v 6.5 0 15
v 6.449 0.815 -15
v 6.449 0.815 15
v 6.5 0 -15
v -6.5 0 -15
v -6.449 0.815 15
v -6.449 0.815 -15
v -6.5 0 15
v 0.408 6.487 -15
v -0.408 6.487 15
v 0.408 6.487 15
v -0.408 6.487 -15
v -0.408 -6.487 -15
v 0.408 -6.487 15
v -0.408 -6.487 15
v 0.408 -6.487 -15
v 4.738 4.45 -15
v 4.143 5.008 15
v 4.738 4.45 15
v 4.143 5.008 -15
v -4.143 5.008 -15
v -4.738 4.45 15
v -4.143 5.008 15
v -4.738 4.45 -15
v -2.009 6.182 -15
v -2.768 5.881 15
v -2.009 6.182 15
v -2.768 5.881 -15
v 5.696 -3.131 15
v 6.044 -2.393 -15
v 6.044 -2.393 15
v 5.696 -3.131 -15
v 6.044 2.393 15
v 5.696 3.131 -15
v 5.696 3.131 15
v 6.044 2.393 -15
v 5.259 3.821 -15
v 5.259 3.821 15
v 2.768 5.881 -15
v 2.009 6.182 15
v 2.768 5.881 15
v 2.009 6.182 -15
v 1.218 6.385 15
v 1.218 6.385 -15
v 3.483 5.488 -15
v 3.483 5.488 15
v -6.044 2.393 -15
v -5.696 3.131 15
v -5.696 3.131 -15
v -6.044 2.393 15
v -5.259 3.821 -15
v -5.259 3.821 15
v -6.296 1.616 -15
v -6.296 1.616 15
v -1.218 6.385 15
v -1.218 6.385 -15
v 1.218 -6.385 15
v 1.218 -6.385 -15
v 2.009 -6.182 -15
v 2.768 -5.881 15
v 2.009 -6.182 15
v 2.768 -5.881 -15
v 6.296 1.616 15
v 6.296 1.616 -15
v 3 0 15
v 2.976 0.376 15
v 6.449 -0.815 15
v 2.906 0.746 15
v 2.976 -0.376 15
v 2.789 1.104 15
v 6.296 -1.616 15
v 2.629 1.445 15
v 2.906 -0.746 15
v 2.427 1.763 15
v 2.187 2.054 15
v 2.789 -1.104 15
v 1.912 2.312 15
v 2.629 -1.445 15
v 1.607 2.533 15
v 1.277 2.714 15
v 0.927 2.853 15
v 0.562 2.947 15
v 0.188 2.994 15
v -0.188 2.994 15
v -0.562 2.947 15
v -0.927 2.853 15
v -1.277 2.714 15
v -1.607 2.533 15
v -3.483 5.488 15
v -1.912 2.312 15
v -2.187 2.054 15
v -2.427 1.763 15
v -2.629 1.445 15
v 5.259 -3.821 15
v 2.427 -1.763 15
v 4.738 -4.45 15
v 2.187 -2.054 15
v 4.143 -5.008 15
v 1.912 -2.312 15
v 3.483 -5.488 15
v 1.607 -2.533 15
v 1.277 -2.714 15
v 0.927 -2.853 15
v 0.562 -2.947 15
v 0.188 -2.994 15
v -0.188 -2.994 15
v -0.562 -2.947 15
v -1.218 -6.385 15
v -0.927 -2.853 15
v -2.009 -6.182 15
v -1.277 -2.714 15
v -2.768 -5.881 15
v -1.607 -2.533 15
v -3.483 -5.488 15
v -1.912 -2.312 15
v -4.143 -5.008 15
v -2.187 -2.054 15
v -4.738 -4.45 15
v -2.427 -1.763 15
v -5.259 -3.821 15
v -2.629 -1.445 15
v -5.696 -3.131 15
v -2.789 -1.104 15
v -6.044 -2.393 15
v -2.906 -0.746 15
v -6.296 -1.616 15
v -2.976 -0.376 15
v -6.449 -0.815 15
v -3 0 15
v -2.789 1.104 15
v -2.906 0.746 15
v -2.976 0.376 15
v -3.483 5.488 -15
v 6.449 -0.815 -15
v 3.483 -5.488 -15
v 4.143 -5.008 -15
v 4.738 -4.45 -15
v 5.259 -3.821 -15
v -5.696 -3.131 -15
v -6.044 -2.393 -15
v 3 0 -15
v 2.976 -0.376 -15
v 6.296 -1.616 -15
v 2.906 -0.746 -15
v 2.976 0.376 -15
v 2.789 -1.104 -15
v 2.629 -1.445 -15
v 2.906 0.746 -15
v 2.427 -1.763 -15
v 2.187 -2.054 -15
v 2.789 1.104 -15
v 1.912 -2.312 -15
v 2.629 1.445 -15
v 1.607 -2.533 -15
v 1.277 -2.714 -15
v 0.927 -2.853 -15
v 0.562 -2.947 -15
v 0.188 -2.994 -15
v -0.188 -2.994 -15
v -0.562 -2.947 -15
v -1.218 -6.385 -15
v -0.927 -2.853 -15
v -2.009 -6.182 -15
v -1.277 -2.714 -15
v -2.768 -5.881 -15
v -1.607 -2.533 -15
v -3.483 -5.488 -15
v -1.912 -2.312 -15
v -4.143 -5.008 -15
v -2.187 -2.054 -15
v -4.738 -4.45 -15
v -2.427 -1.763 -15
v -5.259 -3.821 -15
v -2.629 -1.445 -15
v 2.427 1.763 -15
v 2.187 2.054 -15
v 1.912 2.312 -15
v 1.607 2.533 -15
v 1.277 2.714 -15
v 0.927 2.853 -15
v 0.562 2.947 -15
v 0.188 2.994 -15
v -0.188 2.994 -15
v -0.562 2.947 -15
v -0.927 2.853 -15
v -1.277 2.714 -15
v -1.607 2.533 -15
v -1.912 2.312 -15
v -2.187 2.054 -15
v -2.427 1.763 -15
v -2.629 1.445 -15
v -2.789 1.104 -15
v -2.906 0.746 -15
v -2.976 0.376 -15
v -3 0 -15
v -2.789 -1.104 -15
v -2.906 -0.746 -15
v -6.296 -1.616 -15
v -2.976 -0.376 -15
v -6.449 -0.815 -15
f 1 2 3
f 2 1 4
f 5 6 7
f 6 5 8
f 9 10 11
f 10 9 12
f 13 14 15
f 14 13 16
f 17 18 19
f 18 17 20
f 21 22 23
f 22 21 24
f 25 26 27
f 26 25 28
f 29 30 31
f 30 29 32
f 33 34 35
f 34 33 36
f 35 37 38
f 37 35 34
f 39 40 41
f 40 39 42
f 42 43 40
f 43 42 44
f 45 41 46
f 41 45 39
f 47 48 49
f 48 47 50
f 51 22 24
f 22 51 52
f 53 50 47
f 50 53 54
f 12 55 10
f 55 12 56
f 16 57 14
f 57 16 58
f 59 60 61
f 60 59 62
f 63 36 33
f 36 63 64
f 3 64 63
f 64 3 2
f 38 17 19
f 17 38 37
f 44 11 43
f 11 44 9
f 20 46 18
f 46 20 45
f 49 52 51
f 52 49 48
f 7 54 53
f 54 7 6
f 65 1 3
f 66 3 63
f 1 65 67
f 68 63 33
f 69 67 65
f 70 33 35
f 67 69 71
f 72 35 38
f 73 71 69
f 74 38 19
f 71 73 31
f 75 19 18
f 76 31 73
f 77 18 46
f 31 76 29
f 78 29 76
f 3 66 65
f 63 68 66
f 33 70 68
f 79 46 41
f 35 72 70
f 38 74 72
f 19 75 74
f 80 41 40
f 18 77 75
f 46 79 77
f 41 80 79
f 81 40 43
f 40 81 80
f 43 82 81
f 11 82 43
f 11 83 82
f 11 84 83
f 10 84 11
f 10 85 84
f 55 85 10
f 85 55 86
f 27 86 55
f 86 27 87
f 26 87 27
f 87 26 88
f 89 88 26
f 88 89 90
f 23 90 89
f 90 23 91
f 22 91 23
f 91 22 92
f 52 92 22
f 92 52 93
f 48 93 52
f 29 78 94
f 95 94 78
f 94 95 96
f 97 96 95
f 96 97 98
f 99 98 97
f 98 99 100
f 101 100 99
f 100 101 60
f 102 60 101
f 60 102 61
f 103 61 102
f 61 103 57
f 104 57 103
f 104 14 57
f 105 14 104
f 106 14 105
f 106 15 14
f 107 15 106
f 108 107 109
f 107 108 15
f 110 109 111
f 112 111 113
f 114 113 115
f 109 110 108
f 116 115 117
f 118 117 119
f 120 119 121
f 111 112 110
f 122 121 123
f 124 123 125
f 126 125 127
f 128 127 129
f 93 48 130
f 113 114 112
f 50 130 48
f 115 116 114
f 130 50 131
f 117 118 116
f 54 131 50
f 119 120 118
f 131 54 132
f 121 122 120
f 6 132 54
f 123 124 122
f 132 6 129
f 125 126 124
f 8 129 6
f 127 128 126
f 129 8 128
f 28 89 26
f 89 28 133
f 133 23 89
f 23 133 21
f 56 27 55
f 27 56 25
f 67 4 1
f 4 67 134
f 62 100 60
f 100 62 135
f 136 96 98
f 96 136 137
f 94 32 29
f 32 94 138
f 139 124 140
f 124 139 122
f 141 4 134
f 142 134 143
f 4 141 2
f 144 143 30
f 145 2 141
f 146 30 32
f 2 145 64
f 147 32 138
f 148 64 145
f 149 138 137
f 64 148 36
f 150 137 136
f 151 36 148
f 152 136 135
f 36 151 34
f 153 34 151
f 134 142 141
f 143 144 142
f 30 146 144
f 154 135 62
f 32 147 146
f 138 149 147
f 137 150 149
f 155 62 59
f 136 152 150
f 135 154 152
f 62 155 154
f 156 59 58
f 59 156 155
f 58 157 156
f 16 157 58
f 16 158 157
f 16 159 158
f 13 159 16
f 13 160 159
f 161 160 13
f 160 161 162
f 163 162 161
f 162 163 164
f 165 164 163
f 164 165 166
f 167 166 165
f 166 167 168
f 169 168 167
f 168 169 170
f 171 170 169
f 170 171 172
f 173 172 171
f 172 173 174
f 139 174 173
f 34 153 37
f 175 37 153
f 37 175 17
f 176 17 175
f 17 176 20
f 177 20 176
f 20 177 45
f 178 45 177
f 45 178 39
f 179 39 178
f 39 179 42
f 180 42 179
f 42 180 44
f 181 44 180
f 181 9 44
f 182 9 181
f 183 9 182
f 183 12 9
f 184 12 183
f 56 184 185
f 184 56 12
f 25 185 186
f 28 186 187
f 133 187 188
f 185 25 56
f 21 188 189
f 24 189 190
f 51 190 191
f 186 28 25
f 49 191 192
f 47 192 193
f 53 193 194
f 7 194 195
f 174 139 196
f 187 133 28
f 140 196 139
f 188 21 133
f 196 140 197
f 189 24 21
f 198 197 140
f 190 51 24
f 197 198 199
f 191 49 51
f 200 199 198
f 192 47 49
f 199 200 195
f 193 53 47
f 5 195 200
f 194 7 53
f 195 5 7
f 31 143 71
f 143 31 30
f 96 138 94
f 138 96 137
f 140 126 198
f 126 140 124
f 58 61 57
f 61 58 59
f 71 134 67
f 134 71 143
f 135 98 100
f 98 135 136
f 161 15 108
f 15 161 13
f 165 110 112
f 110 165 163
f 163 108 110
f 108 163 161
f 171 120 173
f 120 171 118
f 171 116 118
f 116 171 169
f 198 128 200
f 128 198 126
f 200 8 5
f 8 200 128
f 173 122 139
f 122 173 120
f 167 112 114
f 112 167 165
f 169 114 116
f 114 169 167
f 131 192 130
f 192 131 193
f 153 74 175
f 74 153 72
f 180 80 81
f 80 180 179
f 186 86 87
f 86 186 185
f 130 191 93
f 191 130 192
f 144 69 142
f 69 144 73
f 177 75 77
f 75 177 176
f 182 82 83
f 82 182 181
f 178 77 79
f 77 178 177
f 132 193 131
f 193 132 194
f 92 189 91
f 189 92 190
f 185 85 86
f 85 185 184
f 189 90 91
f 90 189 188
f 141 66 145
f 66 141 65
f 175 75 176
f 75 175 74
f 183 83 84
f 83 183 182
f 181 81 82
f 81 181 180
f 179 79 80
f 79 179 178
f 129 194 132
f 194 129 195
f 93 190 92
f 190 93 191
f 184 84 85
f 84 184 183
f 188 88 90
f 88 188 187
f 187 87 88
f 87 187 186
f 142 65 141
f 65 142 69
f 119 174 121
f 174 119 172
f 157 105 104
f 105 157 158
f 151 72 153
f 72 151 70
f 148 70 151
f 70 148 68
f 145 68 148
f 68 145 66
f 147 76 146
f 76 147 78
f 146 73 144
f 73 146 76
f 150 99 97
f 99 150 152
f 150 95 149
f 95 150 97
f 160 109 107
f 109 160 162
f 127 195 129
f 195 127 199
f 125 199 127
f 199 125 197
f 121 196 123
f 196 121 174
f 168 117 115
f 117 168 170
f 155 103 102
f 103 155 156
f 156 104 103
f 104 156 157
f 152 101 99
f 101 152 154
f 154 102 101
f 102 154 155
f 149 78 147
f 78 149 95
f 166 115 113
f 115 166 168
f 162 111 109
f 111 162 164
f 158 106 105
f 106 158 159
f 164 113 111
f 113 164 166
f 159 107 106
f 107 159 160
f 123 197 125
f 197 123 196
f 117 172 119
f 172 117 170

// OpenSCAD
$fn = 50;


difference() {
	union() {
		translate(v = [0, 0, -15.0000000000]) {
			cylinder(h = 30, r = 6.5000000000);
		}
	}
	union() {
		translate(v = [0, 0, -100.0000000000]) {
			cylinder(h = 200, r = 3);
		}
	}
}
